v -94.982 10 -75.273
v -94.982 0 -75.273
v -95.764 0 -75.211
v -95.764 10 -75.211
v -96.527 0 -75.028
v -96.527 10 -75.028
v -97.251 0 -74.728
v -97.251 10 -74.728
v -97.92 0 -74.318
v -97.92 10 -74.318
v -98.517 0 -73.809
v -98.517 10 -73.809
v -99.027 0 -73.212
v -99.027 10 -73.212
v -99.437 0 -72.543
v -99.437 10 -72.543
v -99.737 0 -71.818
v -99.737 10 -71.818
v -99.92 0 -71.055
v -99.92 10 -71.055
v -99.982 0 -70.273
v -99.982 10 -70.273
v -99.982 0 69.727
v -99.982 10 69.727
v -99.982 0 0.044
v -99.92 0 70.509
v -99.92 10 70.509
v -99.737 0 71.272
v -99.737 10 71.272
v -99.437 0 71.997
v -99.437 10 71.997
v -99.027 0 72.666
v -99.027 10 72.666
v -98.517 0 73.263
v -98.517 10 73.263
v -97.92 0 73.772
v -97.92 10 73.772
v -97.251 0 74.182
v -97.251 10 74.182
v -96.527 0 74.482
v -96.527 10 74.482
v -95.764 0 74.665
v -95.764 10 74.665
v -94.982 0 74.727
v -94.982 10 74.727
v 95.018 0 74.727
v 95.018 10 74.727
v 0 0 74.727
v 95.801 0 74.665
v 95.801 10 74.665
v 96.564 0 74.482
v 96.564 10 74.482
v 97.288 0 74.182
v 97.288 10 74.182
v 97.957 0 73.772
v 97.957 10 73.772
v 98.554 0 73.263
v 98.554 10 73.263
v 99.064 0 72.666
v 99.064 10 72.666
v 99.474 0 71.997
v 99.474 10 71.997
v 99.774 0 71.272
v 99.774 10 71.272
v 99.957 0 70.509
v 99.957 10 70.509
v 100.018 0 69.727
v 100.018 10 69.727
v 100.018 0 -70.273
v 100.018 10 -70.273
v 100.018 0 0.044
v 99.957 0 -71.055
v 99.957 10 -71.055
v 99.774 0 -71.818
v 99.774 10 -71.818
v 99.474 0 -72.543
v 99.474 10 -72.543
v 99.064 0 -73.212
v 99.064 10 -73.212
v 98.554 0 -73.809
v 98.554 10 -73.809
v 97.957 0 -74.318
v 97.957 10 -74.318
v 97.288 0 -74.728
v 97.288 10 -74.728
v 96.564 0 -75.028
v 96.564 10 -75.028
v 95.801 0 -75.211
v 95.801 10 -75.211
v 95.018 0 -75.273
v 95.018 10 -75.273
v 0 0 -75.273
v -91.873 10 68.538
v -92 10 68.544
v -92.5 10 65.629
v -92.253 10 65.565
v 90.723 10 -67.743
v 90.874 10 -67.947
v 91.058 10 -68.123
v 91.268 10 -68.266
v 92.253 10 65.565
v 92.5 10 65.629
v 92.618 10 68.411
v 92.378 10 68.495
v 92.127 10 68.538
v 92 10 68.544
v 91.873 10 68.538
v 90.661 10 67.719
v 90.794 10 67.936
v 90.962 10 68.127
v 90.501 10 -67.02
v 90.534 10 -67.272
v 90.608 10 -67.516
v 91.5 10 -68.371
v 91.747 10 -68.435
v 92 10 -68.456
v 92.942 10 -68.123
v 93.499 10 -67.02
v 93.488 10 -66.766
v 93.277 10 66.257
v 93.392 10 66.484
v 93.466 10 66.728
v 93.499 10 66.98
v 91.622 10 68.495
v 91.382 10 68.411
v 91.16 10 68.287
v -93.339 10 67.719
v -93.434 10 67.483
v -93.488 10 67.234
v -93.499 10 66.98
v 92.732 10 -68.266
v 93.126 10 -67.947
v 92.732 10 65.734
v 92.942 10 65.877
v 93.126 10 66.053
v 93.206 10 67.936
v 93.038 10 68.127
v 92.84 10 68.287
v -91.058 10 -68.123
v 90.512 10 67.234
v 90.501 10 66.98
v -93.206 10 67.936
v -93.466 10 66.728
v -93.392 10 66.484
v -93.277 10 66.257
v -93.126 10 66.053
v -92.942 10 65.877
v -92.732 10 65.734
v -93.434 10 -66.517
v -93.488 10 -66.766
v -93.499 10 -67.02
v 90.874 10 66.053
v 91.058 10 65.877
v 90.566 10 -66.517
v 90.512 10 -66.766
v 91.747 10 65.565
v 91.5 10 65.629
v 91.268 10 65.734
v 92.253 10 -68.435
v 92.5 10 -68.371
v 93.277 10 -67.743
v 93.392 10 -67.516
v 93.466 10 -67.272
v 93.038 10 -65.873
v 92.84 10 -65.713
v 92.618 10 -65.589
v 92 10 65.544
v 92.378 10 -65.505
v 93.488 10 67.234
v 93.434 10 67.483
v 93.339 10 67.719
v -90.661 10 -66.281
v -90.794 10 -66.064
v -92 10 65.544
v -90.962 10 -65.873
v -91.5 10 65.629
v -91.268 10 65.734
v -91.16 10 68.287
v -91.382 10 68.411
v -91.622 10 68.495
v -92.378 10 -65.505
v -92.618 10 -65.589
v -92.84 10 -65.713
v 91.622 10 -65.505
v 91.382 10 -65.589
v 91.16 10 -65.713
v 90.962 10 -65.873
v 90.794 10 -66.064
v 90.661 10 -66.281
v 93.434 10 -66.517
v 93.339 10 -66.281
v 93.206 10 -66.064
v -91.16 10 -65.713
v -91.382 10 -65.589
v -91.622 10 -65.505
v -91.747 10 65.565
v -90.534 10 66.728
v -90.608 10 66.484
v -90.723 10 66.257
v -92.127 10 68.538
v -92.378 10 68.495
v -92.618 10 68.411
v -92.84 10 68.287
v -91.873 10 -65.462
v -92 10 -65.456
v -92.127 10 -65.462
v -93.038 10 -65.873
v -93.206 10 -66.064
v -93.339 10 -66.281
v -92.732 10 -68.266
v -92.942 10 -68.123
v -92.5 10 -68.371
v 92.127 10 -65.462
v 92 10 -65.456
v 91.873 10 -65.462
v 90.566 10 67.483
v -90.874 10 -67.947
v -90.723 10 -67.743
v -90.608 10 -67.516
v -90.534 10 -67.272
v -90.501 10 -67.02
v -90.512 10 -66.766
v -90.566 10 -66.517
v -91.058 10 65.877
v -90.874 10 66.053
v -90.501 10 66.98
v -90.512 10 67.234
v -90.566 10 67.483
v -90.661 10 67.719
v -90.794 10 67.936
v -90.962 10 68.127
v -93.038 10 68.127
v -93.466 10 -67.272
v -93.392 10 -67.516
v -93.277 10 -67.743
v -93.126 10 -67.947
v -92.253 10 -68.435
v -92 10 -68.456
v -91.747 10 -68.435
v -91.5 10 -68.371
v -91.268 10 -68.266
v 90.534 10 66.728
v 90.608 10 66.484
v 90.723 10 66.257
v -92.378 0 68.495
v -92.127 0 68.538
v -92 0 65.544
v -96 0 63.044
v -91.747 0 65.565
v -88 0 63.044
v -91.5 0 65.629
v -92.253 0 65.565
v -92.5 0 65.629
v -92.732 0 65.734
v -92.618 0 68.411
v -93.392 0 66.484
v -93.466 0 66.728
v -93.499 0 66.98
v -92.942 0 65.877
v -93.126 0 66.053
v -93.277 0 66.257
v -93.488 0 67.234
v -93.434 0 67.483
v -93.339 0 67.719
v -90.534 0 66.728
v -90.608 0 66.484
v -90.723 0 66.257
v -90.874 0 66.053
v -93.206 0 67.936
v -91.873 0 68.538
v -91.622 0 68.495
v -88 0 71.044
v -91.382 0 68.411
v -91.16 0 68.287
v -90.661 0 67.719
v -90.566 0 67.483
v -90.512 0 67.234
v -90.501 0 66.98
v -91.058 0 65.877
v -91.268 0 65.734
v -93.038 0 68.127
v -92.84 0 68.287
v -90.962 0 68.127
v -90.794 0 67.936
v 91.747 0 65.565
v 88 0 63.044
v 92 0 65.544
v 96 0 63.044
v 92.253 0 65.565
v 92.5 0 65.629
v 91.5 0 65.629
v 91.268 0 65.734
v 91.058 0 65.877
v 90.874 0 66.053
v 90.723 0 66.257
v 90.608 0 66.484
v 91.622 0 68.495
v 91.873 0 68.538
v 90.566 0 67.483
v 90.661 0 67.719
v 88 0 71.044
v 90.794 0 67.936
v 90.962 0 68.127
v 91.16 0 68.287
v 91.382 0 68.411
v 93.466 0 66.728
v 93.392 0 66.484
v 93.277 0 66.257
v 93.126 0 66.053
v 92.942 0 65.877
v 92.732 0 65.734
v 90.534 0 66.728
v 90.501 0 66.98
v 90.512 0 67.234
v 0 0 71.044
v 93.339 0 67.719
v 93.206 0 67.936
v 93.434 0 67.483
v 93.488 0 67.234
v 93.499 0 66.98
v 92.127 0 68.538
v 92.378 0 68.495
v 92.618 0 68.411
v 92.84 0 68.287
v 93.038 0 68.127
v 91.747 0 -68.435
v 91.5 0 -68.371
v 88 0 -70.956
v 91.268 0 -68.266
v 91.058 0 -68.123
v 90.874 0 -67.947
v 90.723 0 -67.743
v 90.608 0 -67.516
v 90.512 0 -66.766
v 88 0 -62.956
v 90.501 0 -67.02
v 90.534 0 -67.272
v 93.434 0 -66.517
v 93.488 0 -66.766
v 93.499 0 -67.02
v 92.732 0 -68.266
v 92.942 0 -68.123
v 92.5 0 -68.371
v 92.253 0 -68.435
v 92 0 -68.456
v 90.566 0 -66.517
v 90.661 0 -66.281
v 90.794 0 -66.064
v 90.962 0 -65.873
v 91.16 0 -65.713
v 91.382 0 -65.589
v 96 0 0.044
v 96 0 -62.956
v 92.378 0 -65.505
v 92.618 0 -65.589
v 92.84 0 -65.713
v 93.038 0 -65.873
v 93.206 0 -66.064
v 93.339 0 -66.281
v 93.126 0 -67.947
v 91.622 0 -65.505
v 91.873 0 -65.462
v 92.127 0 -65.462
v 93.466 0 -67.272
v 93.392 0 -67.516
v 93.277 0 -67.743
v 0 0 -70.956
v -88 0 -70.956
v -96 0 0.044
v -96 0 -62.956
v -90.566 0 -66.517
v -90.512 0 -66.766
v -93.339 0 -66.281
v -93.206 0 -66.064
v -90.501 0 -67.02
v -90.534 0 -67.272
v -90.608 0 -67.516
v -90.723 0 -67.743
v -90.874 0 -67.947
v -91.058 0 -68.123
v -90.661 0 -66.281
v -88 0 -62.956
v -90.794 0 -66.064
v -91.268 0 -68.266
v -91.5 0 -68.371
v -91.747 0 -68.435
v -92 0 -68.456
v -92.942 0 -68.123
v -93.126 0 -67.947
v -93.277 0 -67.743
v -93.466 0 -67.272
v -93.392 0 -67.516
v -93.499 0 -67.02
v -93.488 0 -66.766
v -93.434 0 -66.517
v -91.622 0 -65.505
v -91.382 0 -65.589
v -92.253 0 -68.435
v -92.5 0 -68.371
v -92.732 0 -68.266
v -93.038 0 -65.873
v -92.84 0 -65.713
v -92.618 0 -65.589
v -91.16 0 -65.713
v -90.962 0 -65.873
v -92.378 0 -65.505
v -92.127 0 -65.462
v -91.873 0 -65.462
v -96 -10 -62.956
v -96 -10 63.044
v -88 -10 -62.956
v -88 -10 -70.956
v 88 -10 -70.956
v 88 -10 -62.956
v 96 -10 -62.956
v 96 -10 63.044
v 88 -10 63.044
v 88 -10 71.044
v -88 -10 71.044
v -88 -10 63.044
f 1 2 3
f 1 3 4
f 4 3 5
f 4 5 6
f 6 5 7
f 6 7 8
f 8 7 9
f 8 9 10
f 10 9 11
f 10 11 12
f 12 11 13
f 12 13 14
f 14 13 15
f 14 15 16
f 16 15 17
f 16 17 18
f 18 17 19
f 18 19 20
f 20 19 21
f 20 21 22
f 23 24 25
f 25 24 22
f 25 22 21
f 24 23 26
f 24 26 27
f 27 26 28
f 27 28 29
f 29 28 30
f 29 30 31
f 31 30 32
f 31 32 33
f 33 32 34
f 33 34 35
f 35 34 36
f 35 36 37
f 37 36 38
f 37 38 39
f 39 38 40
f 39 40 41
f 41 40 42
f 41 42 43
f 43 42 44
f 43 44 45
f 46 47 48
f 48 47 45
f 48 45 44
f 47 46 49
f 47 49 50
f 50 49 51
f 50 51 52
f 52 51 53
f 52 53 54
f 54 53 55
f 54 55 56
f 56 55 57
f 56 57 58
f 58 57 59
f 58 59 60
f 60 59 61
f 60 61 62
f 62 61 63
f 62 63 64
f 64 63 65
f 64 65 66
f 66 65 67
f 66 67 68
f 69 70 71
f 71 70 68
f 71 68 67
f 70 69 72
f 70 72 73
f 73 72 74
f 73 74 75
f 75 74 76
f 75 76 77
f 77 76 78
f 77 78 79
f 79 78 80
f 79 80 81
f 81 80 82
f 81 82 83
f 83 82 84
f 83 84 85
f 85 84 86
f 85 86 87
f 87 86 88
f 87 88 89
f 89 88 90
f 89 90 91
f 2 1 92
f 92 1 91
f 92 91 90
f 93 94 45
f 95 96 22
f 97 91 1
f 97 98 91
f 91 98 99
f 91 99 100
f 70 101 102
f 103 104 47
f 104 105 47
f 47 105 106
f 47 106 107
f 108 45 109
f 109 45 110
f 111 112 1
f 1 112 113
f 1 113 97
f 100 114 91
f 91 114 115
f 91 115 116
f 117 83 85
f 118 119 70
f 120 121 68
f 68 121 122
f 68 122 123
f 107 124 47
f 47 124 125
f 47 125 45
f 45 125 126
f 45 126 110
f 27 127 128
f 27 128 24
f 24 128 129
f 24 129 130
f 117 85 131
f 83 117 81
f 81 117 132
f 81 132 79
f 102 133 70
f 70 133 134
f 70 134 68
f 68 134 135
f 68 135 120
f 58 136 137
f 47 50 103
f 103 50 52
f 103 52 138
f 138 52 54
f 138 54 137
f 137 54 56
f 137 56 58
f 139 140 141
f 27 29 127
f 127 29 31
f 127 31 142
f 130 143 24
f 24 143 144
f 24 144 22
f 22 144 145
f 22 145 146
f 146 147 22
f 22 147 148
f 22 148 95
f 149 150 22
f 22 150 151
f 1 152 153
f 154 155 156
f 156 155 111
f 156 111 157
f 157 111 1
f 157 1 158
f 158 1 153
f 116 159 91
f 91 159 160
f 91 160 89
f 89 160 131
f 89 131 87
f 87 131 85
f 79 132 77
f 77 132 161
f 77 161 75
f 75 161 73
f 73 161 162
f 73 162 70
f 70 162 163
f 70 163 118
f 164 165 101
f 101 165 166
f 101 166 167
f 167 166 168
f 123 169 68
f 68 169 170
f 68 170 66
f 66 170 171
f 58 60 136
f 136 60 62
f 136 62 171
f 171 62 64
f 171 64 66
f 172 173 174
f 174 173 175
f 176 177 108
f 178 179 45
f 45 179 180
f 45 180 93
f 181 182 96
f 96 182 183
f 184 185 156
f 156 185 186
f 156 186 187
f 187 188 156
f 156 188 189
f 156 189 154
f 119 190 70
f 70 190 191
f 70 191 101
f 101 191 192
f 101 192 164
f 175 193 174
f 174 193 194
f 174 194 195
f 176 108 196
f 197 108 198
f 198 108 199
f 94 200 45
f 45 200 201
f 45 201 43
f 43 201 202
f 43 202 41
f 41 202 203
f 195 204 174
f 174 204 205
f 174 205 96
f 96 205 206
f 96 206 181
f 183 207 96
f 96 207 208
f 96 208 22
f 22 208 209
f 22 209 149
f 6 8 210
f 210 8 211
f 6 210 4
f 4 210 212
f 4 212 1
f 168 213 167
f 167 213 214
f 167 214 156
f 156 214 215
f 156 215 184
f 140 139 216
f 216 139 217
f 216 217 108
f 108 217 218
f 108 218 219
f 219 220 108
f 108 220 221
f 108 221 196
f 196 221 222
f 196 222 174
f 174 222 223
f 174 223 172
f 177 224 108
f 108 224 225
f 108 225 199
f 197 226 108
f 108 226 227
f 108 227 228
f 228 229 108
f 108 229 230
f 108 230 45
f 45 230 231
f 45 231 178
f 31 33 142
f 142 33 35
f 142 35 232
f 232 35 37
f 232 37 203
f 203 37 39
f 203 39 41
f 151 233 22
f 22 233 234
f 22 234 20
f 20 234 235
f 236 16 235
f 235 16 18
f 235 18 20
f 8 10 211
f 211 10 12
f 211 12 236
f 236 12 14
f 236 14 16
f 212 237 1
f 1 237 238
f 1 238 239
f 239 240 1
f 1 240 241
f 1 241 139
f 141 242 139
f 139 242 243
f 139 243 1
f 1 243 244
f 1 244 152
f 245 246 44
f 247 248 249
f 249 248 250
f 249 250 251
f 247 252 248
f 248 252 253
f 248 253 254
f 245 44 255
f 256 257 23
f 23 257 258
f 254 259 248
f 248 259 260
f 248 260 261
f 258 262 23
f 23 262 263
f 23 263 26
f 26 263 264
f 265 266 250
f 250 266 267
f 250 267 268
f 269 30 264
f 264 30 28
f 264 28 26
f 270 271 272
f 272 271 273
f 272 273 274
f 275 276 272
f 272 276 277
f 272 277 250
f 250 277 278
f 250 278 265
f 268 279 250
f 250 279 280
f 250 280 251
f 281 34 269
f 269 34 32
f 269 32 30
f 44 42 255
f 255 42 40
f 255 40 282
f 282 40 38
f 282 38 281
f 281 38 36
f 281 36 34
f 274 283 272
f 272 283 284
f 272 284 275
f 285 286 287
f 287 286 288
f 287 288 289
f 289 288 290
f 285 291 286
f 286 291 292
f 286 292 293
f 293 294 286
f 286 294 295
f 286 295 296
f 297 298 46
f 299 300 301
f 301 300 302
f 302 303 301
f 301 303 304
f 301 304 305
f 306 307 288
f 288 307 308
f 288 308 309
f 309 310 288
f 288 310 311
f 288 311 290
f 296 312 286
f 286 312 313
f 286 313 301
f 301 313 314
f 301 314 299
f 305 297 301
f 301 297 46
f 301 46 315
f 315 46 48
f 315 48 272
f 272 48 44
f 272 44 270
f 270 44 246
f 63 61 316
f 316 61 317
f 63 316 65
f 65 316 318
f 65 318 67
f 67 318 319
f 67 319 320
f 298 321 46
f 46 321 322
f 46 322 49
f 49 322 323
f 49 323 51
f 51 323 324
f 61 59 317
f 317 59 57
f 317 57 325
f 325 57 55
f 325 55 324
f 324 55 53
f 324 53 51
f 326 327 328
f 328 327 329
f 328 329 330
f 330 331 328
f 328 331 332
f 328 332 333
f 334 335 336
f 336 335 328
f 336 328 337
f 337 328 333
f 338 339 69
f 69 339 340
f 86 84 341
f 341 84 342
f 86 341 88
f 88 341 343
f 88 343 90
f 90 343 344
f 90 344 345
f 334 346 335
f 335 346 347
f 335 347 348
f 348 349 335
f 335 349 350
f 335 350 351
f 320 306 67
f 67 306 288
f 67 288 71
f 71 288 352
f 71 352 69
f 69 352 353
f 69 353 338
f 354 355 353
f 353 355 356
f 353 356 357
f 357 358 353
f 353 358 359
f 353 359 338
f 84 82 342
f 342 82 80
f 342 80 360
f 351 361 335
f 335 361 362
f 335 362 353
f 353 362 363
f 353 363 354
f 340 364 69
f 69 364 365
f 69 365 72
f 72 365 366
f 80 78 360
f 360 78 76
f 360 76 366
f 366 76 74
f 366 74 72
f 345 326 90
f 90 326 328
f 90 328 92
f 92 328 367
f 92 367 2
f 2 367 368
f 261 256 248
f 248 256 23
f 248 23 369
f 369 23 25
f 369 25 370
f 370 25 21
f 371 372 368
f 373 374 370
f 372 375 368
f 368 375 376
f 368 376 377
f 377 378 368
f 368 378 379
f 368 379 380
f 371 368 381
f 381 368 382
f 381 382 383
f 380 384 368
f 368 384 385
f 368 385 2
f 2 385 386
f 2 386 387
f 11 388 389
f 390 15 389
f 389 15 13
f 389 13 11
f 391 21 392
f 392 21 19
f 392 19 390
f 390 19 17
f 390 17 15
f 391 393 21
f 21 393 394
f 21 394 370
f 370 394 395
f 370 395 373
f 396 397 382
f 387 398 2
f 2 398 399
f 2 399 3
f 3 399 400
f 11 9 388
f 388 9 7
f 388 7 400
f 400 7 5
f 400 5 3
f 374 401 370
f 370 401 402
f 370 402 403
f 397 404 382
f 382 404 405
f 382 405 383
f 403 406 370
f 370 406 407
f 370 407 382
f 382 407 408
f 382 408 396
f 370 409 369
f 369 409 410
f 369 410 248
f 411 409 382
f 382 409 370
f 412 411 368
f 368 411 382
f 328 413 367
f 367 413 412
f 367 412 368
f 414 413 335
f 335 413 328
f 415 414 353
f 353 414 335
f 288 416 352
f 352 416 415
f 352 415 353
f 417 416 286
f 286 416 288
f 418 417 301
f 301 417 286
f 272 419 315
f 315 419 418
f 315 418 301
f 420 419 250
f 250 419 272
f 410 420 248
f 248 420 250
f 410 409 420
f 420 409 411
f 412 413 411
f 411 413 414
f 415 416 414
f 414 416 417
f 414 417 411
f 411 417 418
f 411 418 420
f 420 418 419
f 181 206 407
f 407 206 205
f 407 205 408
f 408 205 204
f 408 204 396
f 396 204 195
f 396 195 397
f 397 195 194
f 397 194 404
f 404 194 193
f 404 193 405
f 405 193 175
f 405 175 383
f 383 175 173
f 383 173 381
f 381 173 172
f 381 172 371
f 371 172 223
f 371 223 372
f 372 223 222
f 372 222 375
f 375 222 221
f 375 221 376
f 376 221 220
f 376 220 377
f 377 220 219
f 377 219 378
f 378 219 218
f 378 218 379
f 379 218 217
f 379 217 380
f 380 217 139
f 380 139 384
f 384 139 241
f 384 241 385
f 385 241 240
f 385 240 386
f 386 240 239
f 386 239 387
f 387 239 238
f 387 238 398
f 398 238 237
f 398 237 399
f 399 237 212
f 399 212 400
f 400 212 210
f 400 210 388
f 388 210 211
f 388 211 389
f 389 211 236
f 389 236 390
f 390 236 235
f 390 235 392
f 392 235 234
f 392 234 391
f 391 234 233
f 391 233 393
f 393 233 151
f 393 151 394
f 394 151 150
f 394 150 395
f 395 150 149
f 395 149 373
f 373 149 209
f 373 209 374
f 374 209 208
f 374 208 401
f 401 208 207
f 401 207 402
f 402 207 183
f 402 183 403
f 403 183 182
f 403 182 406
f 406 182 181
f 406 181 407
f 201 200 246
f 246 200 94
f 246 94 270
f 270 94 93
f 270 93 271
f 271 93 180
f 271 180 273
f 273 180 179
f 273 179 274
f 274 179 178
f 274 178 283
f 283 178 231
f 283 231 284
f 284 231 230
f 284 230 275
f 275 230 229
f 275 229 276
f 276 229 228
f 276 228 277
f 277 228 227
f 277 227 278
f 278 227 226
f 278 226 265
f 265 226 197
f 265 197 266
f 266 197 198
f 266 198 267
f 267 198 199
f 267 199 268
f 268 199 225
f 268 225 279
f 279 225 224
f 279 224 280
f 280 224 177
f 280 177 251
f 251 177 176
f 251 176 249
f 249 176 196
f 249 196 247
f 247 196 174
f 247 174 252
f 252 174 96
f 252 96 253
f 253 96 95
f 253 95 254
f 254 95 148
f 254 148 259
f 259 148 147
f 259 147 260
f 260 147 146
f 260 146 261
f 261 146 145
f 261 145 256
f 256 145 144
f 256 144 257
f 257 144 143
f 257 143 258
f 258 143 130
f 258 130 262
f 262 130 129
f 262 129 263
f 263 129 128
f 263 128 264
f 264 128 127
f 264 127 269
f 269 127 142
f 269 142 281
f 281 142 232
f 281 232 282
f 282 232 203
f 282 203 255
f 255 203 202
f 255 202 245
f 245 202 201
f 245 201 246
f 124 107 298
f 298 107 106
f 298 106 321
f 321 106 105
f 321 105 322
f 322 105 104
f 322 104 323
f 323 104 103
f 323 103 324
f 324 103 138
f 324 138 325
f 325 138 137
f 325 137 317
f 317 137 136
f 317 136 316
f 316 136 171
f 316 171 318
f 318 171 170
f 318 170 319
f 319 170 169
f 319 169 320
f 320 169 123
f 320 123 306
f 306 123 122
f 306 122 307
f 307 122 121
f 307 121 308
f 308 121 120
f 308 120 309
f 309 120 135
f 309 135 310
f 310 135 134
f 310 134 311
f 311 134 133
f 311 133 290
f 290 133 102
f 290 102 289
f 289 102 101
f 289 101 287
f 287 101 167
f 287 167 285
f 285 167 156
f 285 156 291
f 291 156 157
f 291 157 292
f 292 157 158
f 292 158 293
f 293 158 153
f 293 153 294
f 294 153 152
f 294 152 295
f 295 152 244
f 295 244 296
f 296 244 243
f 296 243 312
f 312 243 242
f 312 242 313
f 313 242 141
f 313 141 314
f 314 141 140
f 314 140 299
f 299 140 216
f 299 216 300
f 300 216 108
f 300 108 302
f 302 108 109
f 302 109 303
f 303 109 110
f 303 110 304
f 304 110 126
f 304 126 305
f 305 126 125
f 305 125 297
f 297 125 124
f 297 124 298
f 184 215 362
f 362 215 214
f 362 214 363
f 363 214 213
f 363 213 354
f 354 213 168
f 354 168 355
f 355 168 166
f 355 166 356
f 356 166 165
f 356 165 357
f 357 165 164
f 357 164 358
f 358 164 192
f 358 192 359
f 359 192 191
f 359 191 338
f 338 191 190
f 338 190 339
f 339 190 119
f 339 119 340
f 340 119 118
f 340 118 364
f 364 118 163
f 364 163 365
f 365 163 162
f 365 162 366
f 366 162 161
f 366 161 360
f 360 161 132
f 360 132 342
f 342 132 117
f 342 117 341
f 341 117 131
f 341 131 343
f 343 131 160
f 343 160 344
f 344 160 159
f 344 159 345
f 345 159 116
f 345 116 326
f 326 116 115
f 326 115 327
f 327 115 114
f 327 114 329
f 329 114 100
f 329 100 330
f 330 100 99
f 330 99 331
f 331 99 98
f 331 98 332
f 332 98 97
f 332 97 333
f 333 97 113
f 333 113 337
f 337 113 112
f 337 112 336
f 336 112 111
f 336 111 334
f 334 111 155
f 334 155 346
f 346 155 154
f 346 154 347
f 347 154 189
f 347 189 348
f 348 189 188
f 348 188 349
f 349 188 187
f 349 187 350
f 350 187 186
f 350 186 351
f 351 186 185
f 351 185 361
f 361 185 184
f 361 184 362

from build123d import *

# Parameters (mm, degrees)
DODANIE_WYCI_GNI_CIE1_DEPTH = 10
DODANIE_WYCI_GNI_CIE2_DEPTH = 10
SZKIC5_R                    = 1.5
WYTNIJ_WYCI_GNI_CIE1_DEPTH  = 15


with BuildPart() as part:
    # Szkic1 → Dodanie-wyciągnięcie1 (new body)
    with BuildSketch(Plane(origin=(0, 0, 0), x_dir=(1, 0, 0), z_dir=(0, 1, 0))):
        with BuildLine():
            Line((-94.981523654, 75.273037309), (95.018476346, 75.273037309))
            ThreePointArc((95.018476346, 75.273037309), (98.554010252, 73.808571215), (100.018476346, 70.273037309))
            Line((100.018476346, 70.273037309), (100.018476346, -69.726962691))
            ThreePointArc((100.018476346, -69.726962691), (98.554010252, -73.262496597), (95.018476346, -74.726962691))
            Line((95.018476346, -74.726962691), (-94.981523654, -74.726962691))
            ThreePointArc((-94.981523654, -74.726962691), (-98.51705756, -73.262496597), (-99.981523654, -69.726962691))
            Line((-99.981523654, -69.726962691), (-99.981523654, 70.273037309))
            ThreePointArc((-99.981523654, 70.273037309), (-98.51705756, 73.808571215), (-94.981523654, 75.273037309))
        make_face()
    extrude(amount=DODANIE_WYCI_GNI_CIE1_DEPTH)

    # Szkic4 → Dodanie-wyciągnięcie2 (add)
    with BuildSketch(Plane.XZ):
        Polygon((-96, 63.04375976), (-88, 63.04375976), (-88, 71.04375976), (88, 71.04375976), (88, 63.04375976), (96, 63.04375976), (96, -62.95624024), (88, -62.95624024), (88, -70.95624024), (-88, -70.95624024), (-88, -62.95624024), (-96, -62.95624024), align=None)
    extrude(amount=DODANIE_WYCI_GNI_CIE2_DEPTH)

    # Szkic5 → Wytnij-wyciągnięcie1 (cut)
    with BuildSketch(Plane.XZ):
        with Locations(Location((-92, -66.95624024, 0), (0, 0, 270))):
            Circle(SZKIC5_R)
        with Locations(Location((-92, 67.04375976, 0), (0, 0, 270))):
            Circle(SZKIC5_R)
        with Locations(Location((92, 67.04375976, 0), (0, 0, 270))):
            Circle(SZKIC5_R)
        with Locations(Location((92, -66.95624024, 0), (0, 0, 270))):
            Circle(SZKIC5_R)
    extrude(amount=-WYTNIJ_WYCI_GNI_CIE1_DEPTH, mode=Mode.SUBTRACT)


solid = part.part
